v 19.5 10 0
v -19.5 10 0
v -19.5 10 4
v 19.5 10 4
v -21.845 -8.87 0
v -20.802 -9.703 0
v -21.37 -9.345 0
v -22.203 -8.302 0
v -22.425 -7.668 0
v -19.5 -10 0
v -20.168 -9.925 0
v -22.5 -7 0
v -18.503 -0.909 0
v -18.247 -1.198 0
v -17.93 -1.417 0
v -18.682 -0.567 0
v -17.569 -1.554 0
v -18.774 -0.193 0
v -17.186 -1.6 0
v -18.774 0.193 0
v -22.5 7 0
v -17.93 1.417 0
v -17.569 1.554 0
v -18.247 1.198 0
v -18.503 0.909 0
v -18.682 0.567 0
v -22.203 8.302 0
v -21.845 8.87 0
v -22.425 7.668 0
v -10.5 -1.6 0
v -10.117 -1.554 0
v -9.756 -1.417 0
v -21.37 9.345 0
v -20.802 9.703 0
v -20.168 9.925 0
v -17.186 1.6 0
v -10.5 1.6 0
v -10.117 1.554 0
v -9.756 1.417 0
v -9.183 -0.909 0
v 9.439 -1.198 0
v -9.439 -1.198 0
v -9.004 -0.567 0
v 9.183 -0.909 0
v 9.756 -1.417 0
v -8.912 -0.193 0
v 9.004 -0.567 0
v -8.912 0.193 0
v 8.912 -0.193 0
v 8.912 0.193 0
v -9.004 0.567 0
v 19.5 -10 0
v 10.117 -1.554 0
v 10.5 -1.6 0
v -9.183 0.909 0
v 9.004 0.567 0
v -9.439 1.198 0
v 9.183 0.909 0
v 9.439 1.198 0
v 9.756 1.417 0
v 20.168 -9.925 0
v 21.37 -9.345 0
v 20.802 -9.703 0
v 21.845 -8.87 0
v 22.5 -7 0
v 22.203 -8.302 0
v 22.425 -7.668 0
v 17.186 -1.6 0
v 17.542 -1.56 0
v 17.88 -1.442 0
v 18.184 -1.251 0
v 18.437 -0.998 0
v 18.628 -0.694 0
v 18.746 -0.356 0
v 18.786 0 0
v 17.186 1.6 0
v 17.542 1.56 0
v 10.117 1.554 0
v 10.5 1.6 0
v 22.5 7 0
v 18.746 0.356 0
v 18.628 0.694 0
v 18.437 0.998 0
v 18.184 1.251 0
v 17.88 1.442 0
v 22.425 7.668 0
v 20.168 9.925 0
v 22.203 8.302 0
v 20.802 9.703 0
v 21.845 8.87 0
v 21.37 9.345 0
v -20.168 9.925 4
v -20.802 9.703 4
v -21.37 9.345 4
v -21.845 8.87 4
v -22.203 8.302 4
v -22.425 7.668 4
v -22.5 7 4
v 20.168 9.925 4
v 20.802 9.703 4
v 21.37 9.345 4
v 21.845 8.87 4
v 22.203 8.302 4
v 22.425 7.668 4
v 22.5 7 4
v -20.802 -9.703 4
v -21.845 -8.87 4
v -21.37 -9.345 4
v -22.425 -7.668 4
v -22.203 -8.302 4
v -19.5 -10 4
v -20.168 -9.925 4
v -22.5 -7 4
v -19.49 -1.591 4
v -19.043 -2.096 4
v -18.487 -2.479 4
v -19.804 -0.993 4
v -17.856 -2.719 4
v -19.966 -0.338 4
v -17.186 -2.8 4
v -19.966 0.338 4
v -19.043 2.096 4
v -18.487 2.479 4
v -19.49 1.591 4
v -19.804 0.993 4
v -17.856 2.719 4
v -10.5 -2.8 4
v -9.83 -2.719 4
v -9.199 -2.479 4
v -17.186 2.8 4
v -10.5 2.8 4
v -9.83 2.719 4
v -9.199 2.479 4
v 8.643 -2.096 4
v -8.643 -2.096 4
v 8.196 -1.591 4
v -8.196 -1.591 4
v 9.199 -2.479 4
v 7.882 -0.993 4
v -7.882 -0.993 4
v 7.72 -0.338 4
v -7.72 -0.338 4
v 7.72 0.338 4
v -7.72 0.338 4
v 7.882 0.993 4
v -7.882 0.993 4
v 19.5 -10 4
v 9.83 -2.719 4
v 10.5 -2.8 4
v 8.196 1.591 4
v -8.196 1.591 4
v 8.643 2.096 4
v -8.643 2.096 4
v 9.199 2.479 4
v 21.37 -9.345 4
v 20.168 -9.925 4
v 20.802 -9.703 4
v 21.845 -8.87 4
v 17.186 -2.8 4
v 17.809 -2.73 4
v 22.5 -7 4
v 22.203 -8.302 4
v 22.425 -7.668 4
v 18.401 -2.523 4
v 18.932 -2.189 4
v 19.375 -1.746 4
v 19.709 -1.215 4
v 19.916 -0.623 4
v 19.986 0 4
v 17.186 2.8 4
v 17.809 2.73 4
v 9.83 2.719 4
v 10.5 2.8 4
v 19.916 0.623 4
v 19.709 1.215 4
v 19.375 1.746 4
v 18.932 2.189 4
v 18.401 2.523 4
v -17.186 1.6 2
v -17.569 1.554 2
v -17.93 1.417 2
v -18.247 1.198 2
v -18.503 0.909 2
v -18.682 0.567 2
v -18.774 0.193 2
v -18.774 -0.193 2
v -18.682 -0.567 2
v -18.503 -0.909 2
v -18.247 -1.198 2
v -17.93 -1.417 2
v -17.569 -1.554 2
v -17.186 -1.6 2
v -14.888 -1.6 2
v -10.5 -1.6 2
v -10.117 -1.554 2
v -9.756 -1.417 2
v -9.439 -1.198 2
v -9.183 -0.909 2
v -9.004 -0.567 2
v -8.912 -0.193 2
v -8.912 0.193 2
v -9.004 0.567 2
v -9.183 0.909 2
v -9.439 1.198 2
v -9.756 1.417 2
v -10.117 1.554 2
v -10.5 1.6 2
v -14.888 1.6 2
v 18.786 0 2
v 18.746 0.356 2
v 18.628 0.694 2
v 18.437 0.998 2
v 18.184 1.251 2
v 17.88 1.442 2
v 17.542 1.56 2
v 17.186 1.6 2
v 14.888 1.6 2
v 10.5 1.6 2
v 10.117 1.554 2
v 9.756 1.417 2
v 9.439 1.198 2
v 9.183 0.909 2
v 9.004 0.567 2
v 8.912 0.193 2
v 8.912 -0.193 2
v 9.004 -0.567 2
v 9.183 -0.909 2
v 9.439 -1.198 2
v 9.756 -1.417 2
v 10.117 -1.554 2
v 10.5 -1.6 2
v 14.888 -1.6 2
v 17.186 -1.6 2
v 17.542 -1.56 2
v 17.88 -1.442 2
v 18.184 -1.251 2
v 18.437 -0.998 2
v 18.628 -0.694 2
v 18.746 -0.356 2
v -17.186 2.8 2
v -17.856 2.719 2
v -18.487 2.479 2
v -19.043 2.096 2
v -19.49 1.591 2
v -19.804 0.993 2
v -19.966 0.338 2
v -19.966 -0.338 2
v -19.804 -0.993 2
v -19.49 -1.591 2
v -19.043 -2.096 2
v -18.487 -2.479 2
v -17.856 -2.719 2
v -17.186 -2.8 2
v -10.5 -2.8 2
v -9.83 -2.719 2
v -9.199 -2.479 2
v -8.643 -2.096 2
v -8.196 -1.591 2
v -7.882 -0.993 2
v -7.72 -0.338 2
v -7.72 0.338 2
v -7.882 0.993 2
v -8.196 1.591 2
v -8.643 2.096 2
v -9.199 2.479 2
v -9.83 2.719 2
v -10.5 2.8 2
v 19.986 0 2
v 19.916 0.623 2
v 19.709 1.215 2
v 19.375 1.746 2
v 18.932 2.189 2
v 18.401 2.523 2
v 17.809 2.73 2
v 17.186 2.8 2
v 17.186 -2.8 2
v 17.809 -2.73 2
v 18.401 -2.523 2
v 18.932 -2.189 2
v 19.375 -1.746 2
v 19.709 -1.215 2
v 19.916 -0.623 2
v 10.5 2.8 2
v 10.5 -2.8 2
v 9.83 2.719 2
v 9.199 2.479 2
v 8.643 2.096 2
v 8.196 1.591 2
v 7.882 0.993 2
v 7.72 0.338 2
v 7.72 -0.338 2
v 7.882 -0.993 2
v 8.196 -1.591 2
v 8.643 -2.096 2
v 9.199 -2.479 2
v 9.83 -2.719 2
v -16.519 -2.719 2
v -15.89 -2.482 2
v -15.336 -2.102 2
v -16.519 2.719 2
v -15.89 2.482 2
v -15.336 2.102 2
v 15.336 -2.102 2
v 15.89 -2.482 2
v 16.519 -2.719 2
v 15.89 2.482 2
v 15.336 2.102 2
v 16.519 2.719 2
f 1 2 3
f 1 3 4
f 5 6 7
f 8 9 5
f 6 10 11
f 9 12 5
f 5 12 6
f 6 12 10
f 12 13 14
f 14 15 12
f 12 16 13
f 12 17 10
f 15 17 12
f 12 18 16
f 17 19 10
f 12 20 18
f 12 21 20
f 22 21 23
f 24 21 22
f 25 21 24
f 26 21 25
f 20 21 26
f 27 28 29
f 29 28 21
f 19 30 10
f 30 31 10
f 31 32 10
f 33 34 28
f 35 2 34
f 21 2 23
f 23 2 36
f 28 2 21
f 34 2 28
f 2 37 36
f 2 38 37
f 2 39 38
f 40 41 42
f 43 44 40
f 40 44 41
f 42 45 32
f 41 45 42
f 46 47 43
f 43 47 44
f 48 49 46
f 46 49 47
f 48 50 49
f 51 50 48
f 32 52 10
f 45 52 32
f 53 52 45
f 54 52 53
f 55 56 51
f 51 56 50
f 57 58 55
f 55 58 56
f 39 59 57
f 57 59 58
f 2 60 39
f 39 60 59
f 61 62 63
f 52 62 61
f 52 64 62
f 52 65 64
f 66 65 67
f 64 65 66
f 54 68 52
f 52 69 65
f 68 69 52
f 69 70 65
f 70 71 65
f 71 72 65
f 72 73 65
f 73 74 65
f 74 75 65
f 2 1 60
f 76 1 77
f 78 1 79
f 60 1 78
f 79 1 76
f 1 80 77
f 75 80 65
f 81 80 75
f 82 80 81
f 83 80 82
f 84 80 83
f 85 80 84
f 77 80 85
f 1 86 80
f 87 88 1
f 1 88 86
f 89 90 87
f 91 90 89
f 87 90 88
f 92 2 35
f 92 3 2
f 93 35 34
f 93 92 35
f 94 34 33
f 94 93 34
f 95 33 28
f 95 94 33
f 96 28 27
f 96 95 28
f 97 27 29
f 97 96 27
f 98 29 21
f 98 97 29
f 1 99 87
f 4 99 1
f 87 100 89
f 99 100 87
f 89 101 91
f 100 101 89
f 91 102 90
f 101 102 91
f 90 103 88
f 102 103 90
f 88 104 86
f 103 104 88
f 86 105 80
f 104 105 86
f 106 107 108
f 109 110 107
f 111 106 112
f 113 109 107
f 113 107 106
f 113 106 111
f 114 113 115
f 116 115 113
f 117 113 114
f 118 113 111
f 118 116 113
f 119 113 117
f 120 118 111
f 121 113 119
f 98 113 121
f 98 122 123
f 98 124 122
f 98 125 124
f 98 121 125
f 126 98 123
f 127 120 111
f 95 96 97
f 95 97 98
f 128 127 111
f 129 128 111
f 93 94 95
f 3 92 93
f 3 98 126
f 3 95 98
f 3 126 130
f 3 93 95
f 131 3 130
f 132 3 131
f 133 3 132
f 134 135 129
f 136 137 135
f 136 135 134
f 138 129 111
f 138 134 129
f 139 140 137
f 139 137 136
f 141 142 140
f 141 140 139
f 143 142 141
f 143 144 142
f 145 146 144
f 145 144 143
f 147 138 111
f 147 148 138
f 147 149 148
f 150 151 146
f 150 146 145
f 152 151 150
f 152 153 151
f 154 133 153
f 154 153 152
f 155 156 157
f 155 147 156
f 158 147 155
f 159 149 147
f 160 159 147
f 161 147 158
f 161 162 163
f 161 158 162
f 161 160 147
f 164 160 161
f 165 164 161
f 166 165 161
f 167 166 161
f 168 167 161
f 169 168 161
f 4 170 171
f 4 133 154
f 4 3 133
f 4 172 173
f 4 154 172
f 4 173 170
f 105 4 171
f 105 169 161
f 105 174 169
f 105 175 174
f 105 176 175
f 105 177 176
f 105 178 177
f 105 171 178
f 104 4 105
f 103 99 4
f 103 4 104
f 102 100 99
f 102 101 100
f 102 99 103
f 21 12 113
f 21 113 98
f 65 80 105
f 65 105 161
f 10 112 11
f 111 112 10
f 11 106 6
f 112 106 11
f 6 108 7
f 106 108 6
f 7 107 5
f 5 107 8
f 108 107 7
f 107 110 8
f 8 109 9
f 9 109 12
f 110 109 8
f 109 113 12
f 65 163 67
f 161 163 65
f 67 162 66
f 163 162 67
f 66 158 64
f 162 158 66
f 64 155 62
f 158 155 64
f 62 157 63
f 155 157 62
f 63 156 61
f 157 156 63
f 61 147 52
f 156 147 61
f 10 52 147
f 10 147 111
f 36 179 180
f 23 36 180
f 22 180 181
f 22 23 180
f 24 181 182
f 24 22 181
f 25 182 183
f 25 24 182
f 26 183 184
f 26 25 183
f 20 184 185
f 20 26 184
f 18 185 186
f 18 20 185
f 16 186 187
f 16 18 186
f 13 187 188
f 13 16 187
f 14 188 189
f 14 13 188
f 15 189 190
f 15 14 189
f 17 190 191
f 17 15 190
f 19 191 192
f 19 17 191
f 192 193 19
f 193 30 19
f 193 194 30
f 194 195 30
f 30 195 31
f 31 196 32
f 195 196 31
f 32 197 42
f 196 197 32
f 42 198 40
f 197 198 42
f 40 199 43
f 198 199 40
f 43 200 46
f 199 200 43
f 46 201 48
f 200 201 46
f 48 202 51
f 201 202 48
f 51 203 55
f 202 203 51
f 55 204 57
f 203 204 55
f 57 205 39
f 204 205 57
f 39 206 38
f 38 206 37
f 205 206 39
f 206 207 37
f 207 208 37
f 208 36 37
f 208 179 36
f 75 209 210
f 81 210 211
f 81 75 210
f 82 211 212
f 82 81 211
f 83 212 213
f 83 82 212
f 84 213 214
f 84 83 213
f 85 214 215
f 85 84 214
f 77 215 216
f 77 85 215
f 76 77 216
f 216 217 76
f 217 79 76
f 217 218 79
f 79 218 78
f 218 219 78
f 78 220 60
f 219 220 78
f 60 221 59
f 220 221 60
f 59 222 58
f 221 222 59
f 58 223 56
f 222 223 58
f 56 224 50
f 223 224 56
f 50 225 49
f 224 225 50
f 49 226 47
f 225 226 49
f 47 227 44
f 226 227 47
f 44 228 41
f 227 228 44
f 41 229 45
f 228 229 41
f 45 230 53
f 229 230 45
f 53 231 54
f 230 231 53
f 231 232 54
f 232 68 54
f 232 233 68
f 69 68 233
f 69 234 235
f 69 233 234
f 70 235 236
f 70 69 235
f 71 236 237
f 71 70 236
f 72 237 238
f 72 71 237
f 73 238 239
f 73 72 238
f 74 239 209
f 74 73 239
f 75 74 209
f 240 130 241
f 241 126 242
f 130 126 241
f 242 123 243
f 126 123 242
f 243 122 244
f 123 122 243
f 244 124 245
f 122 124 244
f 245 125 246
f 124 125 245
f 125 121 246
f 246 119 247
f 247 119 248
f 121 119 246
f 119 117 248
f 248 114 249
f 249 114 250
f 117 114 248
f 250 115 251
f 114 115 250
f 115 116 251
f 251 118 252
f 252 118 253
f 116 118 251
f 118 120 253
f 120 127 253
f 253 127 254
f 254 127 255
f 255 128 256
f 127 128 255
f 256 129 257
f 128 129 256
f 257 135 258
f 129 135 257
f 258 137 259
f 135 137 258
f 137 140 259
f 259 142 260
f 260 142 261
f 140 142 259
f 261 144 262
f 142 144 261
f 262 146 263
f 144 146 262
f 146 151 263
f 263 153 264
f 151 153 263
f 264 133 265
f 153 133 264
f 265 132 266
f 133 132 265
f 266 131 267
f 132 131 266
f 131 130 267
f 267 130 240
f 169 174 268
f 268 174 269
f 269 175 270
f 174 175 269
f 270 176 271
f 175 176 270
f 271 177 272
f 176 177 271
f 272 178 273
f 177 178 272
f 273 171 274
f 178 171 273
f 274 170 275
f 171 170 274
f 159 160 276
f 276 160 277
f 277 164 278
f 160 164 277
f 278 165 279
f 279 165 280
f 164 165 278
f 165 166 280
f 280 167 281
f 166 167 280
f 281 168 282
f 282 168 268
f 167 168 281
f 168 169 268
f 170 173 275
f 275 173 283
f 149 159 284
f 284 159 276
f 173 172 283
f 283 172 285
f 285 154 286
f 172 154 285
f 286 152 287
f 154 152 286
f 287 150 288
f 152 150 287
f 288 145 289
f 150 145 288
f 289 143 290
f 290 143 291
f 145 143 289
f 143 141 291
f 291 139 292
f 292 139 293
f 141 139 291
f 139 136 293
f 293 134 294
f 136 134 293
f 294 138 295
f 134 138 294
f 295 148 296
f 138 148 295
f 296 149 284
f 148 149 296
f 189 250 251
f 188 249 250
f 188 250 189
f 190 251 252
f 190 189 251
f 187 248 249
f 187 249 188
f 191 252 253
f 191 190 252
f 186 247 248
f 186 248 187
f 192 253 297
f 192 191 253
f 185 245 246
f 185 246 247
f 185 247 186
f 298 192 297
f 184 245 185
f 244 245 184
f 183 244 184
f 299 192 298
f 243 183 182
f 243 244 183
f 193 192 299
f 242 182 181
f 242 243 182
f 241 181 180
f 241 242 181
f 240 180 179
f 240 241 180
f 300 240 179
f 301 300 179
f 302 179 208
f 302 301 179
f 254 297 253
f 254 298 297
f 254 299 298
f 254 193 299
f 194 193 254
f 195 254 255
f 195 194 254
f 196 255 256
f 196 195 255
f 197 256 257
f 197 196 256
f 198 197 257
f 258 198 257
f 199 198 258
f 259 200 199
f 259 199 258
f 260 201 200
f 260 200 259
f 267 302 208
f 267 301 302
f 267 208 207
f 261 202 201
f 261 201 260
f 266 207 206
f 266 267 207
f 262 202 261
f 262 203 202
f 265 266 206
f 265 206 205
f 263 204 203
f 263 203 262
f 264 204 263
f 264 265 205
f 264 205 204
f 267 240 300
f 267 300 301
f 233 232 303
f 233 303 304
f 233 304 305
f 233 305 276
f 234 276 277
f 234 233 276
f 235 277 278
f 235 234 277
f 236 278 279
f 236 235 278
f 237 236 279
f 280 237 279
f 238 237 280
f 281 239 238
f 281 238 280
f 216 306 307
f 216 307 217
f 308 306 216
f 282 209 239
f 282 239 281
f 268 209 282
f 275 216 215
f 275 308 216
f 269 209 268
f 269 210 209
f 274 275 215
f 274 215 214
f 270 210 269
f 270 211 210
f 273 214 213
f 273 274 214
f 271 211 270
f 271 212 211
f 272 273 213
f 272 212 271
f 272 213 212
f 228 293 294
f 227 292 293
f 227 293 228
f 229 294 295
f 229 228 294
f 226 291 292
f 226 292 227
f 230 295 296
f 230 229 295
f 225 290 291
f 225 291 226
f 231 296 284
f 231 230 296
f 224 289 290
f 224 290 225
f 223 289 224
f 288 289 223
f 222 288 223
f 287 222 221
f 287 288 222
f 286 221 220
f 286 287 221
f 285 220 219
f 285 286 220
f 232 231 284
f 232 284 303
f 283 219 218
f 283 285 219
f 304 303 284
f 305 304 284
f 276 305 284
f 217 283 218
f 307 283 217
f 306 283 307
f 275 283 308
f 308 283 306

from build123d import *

# Parameters (mm, degrees)
SKETCH_W        = 45
SKETCH_H        = 20
SKETCH_R        = 1.6
PAD_DEPTH       = 4
FILLET_R        = 3
SKETCH001_R     = 2.8
POCKET_DEPTH    = 2
POCKET001_DEPTH = 4.001
POCKET002_DEPTH = 2


with BuildPart() as part:
    # Sketch → Pad (new body)
    with BuildSketch(Plane.XY):
        Rectangle(SKETCH_W, SKETCH_H)
        with Locations((-17.186, 0)):
            Circle(SKETCH_R, mode=Mode.SUBTRACT)
        with Locations((17.186, 0)):
            Circle(SKETCH_R, mode=Mode.SUBTRACT)
    extrude(amount=PAD_DEPTH)

    # Fillet
    fillet_edges = [part.edges().sort_by_distance(p)[0] for p in [
        (22.5, 10, 2),
        (22.5, -10, 2),
        (-22.5, -10, 2),
        (-22.5, 10, 2),
    ]]
    fillet(fillet_edges, radius=FILLET_R)

    # Sketch001 (on Face5 of Fillet) → Pocket (cut)
    with BuildSketch(Plane.XY.offset(4)):
        with Locations((-17.186, 0)):
            Circle(SKETCH001_R)
        with Locations((17.186, 0)):
            Circle(SKETCH001_R)
    extrude(amount=-POCKET_DEPTH, mode=Mode.SUBTRACT)

    # Sketch002 (on Face5 of Pocket) → Pocket001 (cut, through all)
    with BuildSketch(Plane.XY.offset(4)):
        with BuildLine():
            ThreePointArc((-17.186, 1.6), (-18.786, 0), (-17.186, -1.6))
            Line((-17.186, -1.6), (-10.5, -1.6))
            ThreePointArc((-10.5, -1.6), (-8.9, 0), (-10.5, 1.6))
            Line((-10.5, 1.6), (-17.186, 1.6))
        make_face()
        with BuildLine():
            ThreePointArc((10.5, 1.6), (8.9, 0), (10.5, -1.6))
            Line((10.5, -1.6), (17.186, -1.6))
            ThreePointArc((17.186, -1.6), (18.786, 0), (17.186, 1.6))
            Line((17.186, 1.6), (10.5, 1.6))
        make_face()
    extrude(amount=-POCKET001_DEPTH, mode=Mode.SUBTRACT)

    # Sketch003 (on Face5 of Pocket001) → Pocket002 (cut)
    with BuildSketch(Plane.XY.offset(4)):
        with BuildLine():
            ThreePointArc((-17.186, 2.8), (-19.986, 0), (-17.186, -2.8))
            Line((-17.186, -2.8), (-10.5, -2.8))
            ThreePointArc((-10.5, -2.8), (-7.7, 0), (-10.5, 2.8))
            Line((-10.5, 2.8), (-17.186, 2.8))
        make_face()
        with BuildLine():
            ThreePointArc((10.5, 2.8), (7.7, 0), (10.5, -2.8))
            Line((10.5, -2.8), (17.186, -2.8))
            ThreePointArc((17.186, -2.8), (19.986, 0), (17.186, 2.8))
            Line((17.186, 2.8), (10.5, 2.8))
        make_face()
    extrude(amount=-POCKET002_DEPTH, mode=Mode.SUBTRACT)


solid = part.part
